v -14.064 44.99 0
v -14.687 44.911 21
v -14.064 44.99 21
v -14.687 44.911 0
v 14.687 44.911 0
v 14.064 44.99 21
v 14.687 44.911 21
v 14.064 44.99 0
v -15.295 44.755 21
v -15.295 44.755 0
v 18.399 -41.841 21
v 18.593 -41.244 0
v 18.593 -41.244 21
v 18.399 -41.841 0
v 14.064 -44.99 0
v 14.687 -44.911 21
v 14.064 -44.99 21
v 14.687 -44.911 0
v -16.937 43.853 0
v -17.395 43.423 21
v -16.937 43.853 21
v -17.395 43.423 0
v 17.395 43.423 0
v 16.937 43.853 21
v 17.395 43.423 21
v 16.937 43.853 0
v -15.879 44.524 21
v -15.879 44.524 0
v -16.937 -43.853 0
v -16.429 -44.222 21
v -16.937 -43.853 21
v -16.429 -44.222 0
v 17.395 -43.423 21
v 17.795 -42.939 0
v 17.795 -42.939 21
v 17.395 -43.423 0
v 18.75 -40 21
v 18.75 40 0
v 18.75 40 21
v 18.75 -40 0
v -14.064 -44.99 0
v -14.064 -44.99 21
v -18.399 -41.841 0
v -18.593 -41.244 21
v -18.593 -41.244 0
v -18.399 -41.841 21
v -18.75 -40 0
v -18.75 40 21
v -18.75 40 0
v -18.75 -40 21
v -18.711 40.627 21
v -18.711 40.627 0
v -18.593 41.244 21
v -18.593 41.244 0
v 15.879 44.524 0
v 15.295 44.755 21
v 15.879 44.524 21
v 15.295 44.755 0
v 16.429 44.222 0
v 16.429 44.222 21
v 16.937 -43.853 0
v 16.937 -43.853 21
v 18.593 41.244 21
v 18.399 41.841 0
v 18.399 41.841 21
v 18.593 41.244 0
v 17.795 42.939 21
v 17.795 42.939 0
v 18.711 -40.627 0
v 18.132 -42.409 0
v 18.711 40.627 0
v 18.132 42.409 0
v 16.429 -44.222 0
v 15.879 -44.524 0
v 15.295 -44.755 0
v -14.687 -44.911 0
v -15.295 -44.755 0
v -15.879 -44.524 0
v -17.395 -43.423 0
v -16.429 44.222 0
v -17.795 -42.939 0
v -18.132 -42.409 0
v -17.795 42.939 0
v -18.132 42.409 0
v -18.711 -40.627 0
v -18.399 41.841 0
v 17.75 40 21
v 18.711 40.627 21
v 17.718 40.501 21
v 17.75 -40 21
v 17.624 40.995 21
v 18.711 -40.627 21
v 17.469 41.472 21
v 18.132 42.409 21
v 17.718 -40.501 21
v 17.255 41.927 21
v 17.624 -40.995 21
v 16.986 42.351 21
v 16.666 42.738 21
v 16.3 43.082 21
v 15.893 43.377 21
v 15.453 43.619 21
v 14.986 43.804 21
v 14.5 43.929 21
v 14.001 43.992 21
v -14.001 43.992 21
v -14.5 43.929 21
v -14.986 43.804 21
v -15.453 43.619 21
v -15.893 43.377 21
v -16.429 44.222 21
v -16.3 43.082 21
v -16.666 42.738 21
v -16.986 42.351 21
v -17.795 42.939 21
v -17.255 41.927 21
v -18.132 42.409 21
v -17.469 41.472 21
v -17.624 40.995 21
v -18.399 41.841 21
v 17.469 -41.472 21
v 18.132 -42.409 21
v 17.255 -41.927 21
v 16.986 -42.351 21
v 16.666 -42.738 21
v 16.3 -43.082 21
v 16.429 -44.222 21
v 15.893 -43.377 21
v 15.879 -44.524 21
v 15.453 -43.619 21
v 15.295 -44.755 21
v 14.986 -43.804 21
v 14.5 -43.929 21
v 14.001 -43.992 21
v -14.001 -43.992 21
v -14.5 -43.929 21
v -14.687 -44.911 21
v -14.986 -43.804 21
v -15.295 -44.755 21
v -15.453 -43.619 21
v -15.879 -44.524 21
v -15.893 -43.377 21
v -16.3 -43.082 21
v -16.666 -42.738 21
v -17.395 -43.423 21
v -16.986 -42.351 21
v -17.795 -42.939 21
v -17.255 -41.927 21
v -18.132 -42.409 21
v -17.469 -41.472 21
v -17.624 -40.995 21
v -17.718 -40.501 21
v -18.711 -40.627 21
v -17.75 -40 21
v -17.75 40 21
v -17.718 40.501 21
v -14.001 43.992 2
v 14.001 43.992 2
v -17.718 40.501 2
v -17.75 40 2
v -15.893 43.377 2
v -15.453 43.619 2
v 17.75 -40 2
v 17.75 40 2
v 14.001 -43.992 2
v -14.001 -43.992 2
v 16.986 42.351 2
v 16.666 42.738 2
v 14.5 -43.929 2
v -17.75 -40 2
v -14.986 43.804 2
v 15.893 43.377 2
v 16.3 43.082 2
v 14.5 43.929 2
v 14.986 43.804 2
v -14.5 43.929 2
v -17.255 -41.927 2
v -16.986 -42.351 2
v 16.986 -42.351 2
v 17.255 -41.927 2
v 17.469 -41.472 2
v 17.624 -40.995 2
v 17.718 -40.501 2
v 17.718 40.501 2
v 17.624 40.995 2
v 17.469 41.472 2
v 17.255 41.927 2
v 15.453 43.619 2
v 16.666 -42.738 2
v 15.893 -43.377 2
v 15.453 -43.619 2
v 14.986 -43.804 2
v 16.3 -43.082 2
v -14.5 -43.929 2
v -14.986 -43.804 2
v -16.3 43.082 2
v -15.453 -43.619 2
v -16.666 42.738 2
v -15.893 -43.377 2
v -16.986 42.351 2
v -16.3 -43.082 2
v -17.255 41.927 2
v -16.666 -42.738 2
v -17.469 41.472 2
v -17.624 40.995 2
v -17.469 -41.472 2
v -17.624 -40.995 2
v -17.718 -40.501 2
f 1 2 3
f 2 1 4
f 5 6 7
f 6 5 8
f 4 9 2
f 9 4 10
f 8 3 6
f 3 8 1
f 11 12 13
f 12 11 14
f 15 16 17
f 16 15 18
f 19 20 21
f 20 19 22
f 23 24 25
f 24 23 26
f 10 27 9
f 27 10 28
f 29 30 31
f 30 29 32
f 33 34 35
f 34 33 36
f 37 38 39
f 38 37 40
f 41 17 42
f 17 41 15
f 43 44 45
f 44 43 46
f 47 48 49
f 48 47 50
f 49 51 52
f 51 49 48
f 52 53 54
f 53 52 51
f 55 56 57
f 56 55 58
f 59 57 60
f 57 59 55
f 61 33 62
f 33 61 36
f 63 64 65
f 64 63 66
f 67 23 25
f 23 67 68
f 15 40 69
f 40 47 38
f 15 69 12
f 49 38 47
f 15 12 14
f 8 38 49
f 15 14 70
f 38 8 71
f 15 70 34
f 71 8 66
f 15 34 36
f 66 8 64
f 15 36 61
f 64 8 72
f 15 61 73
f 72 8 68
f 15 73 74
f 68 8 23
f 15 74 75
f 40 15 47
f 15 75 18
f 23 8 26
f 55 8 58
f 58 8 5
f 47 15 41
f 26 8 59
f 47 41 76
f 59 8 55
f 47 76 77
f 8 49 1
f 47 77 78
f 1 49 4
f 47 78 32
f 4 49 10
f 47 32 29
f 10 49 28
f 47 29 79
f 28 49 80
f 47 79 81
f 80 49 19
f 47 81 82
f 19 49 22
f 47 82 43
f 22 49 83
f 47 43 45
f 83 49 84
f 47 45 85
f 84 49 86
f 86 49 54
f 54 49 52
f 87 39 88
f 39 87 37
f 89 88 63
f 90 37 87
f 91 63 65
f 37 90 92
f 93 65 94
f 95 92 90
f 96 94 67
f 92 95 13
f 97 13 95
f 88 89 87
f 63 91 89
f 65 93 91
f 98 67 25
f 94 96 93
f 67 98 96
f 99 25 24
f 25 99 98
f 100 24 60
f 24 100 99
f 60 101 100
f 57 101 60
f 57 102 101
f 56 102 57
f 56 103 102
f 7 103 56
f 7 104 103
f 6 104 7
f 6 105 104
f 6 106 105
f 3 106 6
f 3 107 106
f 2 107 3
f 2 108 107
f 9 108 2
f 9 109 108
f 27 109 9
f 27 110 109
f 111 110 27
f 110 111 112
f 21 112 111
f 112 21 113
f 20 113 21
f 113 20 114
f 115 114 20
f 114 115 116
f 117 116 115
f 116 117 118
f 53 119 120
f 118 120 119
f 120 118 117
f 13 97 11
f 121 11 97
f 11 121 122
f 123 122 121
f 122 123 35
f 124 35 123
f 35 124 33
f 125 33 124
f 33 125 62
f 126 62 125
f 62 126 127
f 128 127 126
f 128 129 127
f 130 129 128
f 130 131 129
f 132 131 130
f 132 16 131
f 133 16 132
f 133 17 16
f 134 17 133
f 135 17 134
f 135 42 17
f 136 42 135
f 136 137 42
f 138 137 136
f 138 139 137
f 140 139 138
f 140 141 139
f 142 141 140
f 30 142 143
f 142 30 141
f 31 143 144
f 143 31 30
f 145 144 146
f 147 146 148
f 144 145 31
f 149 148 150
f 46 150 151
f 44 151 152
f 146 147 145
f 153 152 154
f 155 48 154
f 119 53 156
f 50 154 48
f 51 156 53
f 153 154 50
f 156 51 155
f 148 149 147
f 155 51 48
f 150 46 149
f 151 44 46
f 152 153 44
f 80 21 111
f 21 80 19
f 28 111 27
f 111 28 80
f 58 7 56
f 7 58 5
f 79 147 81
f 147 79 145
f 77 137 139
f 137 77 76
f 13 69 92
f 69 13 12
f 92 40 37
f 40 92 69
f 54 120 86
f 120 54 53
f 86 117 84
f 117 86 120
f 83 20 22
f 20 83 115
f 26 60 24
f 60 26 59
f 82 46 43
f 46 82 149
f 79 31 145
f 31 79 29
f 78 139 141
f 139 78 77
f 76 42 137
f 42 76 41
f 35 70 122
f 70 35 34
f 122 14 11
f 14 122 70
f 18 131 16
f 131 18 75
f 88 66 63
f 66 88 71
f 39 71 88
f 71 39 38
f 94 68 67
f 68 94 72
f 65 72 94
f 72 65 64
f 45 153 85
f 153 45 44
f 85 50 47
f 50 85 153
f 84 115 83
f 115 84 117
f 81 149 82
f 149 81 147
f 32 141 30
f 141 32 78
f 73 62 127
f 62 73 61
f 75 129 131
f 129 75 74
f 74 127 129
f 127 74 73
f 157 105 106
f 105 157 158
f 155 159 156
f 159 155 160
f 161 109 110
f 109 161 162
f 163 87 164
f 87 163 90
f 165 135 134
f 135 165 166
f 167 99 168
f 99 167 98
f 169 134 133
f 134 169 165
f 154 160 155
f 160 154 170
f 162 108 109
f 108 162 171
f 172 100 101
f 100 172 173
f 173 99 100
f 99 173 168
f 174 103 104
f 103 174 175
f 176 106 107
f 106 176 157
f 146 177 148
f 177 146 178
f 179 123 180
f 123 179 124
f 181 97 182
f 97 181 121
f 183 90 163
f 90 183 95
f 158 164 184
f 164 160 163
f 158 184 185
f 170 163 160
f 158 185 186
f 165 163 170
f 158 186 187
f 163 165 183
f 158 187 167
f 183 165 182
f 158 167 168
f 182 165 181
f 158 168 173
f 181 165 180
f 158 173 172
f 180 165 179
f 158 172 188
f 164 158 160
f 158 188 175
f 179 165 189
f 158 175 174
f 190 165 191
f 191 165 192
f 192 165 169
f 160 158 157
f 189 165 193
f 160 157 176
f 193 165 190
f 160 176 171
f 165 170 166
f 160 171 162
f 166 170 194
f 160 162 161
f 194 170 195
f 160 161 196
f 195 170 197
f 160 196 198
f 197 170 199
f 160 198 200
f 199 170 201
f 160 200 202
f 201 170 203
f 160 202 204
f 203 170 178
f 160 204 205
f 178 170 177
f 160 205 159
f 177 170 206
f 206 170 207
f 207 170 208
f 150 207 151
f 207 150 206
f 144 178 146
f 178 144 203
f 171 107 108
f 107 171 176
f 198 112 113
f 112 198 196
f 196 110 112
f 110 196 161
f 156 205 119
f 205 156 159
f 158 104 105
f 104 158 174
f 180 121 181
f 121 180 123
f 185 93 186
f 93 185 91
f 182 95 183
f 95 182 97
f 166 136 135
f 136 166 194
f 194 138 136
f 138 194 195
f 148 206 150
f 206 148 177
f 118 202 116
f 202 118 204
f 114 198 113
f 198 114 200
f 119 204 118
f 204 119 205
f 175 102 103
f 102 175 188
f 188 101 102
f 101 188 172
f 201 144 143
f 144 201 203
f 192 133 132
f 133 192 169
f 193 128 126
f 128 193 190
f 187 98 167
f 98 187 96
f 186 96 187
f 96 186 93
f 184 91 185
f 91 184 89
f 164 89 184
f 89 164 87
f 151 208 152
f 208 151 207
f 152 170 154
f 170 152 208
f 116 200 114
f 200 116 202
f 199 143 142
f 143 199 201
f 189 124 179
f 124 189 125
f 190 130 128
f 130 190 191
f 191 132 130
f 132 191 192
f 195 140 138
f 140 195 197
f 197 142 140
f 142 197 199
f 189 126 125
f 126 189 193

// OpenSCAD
$fn = 50;


difference() {
	union() {
		hull() {
			translate(v = [-13.7500000000, 40.0000000000, 0]) {
				cylinder(h = 21, r = 5);
			}
			translate(v = [13.7500000000, 40.0000000000, 0]) {
				cylinder(h = 21, r = 5);
			}
			translate(v = [-13.7500000000, -40.0000000000, 0]) {
				cylinder(h = 21, r = 5);
			}
			translate(v = [13.7500000000, -40.0000000000, 0]) {
				cylinder(h = 21, r = 5);
			}
		}
	}
	union() {
		translate(v = [0, 0, 2]) {
			hull() {
				translate(v = [-13.7500000000, 40.0000000000, 0]) {
					cylinder(h = 19, r = 4);
				}
				translate(v = [13.7500000000, 40.0000000000, 0]) {
					cylinder(h = 19, r = 4);
				}
				translate(v = [-13.7500000000, -40.0000000000, 0]) {
					cylinder(h = 19, r = 4);
				}
				translate(v = [13.7500000000, -40.0000000000, 0]) {
					cylinder(h = 19, r = 4);
				}
			}
		}
	}
}
